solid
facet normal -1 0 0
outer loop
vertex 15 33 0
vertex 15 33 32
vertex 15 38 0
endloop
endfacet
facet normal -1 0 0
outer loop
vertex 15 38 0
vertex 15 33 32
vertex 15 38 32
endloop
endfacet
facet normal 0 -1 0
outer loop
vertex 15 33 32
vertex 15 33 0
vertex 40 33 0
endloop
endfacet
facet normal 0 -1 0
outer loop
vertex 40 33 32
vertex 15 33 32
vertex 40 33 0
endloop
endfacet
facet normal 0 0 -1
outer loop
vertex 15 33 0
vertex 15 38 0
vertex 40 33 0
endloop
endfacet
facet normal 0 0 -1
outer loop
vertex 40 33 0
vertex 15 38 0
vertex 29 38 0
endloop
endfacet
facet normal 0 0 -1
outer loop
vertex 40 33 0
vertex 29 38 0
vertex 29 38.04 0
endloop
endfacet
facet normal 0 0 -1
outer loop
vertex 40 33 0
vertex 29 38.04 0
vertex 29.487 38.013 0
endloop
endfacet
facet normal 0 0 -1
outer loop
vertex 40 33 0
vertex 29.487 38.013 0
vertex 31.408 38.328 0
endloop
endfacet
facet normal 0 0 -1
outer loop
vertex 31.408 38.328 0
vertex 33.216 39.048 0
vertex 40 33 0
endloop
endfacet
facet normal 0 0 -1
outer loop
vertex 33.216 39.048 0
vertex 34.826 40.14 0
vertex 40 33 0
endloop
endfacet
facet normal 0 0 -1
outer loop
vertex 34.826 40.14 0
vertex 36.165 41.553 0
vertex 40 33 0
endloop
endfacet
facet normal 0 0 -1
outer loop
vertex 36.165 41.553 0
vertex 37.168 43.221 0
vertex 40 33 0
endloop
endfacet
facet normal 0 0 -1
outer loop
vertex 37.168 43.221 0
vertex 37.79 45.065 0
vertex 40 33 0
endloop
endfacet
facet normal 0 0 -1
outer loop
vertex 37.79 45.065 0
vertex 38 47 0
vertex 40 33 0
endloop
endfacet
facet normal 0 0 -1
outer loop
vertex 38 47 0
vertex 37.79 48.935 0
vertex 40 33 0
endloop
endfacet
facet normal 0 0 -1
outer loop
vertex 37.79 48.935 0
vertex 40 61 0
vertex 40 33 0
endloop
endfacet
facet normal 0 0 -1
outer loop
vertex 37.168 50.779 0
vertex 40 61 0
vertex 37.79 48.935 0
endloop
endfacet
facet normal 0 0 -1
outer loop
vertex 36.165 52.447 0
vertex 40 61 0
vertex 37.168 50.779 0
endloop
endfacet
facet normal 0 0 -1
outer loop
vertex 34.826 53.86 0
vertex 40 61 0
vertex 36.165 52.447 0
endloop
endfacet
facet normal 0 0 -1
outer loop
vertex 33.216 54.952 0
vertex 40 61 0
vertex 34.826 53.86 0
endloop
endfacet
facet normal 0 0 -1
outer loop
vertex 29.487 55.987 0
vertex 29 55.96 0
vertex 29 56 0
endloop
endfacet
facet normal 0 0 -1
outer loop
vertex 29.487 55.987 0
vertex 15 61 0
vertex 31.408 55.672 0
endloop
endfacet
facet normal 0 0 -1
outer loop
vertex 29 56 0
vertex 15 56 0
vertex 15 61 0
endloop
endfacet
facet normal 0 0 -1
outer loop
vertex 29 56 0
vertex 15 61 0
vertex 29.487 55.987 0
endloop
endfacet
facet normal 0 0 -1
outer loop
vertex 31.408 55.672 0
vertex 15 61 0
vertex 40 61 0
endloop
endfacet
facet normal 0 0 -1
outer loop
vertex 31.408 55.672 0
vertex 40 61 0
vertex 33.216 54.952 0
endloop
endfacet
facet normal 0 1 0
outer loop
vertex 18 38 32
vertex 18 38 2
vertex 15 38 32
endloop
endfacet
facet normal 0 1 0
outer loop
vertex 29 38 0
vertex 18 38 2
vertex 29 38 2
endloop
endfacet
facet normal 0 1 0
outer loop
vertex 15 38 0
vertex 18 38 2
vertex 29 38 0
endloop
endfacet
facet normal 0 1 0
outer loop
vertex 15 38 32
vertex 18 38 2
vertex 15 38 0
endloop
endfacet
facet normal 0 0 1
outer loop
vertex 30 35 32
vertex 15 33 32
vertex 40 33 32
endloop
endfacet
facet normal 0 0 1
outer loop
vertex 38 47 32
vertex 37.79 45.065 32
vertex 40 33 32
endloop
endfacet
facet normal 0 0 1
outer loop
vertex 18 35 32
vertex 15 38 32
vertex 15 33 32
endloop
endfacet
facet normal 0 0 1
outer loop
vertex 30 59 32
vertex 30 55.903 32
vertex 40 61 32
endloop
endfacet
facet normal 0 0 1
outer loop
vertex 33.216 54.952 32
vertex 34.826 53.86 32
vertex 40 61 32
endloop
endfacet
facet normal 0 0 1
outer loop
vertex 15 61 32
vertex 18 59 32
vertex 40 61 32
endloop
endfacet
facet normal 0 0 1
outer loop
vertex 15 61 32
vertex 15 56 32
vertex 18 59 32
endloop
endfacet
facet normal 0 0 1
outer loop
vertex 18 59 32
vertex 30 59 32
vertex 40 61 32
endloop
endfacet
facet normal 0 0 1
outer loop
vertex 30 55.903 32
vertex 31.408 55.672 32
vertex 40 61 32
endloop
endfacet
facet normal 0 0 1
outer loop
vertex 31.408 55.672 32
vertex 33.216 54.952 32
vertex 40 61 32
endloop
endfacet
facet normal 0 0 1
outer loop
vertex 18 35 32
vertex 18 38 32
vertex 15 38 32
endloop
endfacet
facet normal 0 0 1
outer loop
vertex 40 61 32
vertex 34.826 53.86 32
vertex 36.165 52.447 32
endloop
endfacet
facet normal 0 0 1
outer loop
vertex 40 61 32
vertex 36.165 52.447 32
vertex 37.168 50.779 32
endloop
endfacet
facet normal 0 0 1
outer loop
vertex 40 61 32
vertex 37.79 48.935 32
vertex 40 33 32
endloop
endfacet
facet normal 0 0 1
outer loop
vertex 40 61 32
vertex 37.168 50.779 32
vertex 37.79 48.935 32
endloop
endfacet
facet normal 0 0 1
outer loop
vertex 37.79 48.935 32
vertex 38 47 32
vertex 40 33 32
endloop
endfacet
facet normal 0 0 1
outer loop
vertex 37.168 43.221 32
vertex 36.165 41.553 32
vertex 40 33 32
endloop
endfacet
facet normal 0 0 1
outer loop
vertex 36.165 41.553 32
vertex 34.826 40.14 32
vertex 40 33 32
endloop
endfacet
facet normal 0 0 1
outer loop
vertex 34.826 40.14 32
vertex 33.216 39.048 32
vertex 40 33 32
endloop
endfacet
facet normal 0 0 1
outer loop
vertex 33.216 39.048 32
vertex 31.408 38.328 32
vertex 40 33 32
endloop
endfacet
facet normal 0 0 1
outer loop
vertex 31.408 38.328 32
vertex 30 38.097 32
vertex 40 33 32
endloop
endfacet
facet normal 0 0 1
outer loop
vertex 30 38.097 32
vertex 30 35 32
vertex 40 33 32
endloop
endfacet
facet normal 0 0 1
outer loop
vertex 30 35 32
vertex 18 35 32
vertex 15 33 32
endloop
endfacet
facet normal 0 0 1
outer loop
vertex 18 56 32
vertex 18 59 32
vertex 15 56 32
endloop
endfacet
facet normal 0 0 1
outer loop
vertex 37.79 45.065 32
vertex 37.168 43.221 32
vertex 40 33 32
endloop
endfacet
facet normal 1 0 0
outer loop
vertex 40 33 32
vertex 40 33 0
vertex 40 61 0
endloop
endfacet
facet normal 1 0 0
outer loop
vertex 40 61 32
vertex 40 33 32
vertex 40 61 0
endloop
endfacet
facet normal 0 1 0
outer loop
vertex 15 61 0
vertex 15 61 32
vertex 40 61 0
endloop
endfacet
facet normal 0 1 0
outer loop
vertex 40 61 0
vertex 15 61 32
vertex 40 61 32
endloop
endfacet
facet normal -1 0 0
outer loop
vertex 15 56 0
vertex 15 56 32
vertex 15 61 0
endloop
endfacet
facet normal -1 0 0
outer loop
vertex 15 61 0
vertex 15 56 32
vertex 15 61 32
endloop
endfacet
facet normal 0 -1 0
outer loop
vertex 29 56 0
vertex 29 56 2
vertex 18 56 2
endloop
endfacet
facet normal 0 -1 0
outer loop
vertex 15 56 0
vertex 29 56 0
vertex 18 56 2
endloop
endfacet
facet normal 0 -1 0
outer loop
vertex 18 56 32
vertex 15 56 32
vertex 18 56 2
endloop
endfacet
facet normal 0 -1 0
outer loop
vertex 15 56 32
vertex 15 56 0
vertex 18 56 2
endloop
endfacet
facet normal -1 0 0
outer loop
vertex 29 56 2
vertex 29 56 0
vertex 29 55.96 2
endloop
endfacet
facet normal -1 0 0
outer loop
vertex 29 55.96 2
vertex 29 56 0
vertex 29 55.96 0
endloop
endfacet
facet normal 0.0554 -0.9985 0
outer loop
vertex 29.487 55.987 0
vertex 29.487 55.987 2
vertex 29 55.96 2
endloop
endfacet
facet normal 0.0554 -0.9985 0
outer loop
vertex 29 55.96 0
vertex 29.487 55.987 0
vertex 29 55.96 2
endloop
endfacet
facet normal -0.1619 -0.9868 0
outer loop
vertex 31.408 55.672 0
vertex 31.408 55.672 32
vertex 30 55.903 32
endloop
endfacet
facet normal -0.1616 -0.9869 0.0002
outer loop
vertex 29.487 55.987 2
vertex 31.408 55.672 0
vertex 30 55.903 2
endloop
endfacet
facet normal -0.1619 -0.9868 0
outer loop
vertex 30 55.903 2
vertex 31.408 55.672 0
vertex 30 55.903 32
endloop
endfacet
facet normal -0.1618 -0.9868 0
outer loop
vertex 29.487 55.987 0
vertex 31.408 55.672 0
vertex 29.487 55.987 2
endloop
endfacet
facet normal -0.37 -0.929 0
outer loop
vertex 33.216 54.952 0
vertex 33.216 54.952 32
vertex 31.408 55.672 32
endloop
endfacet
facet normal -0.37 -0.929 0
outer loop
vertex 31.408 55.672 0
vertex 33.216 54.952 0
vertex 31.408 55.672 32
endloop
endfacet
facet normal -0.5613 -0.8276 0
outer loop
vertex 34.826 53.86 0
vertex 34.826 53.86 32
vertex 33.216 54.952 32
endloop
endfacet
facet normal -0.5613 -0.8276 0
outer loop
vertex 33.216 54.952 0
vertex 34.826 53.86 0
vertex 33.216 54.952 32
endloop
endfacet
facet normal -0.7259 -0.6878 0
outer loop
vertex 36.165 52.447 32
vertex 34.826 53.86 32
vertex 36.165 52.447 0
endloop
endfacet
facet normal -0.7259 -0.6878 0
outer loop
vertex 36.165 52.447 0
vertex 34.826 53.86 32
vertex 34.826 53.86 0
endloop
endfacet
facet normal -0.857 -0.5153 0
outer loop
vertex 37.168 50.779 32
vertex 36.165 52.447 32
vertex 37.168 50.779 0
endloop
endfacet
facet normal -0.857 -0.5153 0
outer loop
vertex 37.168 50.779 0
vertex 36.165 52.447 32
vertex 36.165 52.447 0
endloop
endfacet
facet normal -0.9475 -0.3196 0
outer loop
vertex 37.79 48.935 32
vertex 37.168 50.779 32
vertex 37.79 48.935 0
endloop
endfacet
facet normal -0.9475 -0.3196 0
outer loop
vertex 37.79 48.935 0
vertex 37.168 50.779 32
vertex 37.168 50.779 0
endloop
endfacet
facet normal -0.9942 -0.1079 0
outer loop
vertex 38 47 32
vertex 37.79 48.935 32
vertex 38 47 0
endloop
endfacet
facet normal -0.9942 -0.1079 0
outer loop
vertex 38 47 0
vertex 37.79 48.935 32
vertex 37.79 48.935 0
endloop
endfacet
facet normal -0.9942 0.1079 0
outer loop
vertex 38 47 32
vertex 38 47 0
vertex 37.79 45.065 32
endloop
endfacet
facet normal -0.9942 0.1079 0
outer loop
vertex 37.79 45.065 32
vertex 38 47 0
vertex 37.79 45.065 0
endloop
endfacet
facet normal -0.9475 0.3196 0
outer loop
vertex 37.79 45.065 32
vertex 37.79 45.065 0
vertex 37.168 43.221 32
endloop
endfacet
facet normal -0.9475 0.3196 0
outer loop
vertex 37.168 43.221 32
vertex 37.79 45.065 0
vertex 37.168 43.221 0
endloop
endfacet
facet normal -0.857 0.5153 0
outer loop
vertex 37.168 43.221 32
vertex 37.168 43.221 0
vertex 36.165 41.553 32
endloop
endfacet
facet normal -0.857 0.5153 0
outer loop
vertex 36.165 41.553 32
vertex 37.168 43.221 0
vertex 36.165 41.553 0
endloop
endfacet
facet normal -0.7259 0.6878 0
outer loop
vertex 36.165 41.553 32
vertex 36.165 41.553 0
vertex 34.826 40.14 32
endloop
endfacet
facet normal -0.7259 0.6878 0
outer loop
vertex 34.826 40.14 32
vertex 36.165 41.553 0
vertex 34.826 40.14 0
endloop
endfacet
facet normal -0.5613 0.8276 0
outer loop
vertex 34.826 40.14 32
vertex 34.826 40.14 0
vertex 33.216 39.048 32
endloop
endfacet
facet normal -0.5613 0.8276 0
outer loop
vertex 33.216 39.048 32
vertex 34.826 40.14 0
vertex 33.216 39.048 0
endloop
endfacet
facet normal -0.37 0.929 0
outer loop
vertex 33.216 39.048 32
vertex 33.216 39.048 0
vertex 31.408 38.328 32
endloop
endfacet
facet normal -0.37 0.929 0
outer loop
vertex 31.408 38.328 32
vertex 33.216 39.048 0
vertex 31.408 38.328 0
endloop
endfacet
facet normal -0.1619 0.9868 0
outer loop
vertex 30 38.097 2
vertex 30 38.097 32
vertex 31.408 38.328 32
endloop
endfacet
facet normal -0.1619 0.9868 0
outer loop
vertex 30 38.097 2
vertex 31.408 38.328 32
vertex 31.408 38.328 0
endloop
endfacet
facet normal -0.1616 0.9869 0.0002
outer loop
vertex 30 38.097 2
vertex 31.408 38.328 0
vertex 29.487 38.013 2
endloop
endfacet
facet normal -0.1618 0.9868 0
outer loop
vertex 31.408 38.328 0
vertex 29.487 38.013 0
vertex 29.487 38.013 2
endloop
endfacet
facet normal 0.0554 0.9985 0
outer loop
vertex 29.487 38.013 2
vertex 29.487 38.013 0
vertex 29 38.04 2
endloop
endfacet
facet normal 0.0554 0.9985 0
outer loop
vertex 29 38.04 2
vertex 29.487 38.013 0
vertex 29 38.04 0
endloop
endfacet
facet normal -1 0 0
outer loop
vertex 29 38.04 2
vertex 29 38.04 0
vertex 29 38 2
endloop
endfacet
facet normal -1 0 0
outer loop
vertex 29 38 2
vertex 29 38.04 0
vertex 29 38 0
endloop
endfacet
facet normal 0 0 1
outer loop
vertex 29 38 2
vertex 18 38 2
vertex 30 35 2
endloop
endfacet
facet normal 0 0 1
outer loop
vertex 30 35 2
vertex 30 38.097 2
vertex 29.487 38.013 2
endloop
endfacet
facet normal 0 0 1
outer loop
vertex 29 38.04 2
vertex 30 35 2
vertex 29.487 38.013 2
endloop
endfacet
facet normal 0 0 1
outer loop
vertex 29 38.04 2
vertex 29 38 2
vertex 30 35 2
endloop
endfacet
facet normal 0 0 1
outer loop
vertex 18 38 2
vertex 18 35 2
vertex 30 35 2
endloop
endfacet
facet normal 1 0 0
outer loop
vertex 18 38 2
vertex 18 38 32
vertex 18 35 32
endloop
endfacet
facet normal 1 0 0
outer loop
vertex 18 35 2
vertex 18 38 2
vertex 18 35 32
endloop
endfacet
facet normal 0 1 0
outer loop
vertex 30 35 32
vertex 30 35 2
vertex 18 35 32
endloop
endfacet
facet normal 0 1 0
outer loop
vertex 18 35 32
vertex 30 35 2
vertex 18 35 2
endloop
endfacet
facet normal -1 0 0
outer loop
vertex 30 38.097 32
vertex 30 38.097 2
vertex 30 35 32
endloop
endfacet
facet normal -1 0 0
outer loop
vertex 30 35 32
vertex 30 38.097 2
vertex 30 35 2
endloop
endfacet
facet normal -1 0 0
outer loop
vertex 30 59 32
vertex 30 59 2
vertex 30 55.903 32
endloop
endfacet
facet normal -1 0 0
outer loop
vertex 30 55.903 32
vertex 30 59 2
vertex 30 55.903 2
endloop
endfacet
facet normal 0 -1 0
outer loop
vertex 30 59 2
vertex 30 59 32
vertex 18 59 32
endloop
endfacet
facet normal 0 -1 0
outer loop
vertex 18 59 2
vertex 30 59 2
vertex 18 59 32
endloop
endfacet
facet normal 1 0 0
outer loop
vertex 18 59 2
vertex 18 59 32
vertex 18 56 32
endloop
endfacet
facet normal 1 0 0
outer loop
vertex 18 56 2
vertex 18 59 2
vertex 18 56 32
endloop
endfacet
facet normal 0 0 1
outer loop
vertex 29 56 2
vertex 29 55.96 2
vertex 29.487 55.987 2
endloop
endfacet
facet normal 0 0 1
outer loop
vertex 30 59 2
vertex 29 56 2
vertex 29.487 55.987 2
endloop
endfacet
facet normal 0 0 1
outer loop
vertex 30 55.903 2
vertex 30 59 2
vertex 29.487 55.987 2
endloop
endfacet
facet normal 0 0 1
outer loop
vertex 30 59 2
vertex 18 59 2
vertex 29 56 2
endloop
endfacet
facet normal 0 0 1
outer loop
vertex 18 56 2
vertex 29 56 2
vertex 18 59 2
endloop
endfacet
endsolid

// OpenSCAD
radius=9;
height=30;

top_border=2;
heel_width=3;
heel_height=3;

holder_length = 200;
holder_width = 100;
border = 2;
bottom_thickness=4;

rows = 10;
columns = 5;

translate([2 * radius - heel_width, 3 * radius + (2 * heel_height), 0]) {
	difference() {
		cube([2 * radius + 2 * top_border + heel_width, 2 * radius + 2 * heel_height + 2 * top_border, height + top_border]);
		translate([radius + top_border + heel_width, radius + top_border + heel_height, 0]) {cylinder(height + top_border, r=radius);}
		translate([0, top_border + heel_height, 0]) {cube([radius + top_border + heel_width, 2 * radius, height + top_border]);}
		translate([heel_width, top_border, top_border]) {cube([radius + heel_width, 2 * radius + 2 * heel_height, height]);}
		translate([0, top_border + heel_height, top_border]) {cube([heel_width, 2 * radius - heel_height, height]);}
	}
}
